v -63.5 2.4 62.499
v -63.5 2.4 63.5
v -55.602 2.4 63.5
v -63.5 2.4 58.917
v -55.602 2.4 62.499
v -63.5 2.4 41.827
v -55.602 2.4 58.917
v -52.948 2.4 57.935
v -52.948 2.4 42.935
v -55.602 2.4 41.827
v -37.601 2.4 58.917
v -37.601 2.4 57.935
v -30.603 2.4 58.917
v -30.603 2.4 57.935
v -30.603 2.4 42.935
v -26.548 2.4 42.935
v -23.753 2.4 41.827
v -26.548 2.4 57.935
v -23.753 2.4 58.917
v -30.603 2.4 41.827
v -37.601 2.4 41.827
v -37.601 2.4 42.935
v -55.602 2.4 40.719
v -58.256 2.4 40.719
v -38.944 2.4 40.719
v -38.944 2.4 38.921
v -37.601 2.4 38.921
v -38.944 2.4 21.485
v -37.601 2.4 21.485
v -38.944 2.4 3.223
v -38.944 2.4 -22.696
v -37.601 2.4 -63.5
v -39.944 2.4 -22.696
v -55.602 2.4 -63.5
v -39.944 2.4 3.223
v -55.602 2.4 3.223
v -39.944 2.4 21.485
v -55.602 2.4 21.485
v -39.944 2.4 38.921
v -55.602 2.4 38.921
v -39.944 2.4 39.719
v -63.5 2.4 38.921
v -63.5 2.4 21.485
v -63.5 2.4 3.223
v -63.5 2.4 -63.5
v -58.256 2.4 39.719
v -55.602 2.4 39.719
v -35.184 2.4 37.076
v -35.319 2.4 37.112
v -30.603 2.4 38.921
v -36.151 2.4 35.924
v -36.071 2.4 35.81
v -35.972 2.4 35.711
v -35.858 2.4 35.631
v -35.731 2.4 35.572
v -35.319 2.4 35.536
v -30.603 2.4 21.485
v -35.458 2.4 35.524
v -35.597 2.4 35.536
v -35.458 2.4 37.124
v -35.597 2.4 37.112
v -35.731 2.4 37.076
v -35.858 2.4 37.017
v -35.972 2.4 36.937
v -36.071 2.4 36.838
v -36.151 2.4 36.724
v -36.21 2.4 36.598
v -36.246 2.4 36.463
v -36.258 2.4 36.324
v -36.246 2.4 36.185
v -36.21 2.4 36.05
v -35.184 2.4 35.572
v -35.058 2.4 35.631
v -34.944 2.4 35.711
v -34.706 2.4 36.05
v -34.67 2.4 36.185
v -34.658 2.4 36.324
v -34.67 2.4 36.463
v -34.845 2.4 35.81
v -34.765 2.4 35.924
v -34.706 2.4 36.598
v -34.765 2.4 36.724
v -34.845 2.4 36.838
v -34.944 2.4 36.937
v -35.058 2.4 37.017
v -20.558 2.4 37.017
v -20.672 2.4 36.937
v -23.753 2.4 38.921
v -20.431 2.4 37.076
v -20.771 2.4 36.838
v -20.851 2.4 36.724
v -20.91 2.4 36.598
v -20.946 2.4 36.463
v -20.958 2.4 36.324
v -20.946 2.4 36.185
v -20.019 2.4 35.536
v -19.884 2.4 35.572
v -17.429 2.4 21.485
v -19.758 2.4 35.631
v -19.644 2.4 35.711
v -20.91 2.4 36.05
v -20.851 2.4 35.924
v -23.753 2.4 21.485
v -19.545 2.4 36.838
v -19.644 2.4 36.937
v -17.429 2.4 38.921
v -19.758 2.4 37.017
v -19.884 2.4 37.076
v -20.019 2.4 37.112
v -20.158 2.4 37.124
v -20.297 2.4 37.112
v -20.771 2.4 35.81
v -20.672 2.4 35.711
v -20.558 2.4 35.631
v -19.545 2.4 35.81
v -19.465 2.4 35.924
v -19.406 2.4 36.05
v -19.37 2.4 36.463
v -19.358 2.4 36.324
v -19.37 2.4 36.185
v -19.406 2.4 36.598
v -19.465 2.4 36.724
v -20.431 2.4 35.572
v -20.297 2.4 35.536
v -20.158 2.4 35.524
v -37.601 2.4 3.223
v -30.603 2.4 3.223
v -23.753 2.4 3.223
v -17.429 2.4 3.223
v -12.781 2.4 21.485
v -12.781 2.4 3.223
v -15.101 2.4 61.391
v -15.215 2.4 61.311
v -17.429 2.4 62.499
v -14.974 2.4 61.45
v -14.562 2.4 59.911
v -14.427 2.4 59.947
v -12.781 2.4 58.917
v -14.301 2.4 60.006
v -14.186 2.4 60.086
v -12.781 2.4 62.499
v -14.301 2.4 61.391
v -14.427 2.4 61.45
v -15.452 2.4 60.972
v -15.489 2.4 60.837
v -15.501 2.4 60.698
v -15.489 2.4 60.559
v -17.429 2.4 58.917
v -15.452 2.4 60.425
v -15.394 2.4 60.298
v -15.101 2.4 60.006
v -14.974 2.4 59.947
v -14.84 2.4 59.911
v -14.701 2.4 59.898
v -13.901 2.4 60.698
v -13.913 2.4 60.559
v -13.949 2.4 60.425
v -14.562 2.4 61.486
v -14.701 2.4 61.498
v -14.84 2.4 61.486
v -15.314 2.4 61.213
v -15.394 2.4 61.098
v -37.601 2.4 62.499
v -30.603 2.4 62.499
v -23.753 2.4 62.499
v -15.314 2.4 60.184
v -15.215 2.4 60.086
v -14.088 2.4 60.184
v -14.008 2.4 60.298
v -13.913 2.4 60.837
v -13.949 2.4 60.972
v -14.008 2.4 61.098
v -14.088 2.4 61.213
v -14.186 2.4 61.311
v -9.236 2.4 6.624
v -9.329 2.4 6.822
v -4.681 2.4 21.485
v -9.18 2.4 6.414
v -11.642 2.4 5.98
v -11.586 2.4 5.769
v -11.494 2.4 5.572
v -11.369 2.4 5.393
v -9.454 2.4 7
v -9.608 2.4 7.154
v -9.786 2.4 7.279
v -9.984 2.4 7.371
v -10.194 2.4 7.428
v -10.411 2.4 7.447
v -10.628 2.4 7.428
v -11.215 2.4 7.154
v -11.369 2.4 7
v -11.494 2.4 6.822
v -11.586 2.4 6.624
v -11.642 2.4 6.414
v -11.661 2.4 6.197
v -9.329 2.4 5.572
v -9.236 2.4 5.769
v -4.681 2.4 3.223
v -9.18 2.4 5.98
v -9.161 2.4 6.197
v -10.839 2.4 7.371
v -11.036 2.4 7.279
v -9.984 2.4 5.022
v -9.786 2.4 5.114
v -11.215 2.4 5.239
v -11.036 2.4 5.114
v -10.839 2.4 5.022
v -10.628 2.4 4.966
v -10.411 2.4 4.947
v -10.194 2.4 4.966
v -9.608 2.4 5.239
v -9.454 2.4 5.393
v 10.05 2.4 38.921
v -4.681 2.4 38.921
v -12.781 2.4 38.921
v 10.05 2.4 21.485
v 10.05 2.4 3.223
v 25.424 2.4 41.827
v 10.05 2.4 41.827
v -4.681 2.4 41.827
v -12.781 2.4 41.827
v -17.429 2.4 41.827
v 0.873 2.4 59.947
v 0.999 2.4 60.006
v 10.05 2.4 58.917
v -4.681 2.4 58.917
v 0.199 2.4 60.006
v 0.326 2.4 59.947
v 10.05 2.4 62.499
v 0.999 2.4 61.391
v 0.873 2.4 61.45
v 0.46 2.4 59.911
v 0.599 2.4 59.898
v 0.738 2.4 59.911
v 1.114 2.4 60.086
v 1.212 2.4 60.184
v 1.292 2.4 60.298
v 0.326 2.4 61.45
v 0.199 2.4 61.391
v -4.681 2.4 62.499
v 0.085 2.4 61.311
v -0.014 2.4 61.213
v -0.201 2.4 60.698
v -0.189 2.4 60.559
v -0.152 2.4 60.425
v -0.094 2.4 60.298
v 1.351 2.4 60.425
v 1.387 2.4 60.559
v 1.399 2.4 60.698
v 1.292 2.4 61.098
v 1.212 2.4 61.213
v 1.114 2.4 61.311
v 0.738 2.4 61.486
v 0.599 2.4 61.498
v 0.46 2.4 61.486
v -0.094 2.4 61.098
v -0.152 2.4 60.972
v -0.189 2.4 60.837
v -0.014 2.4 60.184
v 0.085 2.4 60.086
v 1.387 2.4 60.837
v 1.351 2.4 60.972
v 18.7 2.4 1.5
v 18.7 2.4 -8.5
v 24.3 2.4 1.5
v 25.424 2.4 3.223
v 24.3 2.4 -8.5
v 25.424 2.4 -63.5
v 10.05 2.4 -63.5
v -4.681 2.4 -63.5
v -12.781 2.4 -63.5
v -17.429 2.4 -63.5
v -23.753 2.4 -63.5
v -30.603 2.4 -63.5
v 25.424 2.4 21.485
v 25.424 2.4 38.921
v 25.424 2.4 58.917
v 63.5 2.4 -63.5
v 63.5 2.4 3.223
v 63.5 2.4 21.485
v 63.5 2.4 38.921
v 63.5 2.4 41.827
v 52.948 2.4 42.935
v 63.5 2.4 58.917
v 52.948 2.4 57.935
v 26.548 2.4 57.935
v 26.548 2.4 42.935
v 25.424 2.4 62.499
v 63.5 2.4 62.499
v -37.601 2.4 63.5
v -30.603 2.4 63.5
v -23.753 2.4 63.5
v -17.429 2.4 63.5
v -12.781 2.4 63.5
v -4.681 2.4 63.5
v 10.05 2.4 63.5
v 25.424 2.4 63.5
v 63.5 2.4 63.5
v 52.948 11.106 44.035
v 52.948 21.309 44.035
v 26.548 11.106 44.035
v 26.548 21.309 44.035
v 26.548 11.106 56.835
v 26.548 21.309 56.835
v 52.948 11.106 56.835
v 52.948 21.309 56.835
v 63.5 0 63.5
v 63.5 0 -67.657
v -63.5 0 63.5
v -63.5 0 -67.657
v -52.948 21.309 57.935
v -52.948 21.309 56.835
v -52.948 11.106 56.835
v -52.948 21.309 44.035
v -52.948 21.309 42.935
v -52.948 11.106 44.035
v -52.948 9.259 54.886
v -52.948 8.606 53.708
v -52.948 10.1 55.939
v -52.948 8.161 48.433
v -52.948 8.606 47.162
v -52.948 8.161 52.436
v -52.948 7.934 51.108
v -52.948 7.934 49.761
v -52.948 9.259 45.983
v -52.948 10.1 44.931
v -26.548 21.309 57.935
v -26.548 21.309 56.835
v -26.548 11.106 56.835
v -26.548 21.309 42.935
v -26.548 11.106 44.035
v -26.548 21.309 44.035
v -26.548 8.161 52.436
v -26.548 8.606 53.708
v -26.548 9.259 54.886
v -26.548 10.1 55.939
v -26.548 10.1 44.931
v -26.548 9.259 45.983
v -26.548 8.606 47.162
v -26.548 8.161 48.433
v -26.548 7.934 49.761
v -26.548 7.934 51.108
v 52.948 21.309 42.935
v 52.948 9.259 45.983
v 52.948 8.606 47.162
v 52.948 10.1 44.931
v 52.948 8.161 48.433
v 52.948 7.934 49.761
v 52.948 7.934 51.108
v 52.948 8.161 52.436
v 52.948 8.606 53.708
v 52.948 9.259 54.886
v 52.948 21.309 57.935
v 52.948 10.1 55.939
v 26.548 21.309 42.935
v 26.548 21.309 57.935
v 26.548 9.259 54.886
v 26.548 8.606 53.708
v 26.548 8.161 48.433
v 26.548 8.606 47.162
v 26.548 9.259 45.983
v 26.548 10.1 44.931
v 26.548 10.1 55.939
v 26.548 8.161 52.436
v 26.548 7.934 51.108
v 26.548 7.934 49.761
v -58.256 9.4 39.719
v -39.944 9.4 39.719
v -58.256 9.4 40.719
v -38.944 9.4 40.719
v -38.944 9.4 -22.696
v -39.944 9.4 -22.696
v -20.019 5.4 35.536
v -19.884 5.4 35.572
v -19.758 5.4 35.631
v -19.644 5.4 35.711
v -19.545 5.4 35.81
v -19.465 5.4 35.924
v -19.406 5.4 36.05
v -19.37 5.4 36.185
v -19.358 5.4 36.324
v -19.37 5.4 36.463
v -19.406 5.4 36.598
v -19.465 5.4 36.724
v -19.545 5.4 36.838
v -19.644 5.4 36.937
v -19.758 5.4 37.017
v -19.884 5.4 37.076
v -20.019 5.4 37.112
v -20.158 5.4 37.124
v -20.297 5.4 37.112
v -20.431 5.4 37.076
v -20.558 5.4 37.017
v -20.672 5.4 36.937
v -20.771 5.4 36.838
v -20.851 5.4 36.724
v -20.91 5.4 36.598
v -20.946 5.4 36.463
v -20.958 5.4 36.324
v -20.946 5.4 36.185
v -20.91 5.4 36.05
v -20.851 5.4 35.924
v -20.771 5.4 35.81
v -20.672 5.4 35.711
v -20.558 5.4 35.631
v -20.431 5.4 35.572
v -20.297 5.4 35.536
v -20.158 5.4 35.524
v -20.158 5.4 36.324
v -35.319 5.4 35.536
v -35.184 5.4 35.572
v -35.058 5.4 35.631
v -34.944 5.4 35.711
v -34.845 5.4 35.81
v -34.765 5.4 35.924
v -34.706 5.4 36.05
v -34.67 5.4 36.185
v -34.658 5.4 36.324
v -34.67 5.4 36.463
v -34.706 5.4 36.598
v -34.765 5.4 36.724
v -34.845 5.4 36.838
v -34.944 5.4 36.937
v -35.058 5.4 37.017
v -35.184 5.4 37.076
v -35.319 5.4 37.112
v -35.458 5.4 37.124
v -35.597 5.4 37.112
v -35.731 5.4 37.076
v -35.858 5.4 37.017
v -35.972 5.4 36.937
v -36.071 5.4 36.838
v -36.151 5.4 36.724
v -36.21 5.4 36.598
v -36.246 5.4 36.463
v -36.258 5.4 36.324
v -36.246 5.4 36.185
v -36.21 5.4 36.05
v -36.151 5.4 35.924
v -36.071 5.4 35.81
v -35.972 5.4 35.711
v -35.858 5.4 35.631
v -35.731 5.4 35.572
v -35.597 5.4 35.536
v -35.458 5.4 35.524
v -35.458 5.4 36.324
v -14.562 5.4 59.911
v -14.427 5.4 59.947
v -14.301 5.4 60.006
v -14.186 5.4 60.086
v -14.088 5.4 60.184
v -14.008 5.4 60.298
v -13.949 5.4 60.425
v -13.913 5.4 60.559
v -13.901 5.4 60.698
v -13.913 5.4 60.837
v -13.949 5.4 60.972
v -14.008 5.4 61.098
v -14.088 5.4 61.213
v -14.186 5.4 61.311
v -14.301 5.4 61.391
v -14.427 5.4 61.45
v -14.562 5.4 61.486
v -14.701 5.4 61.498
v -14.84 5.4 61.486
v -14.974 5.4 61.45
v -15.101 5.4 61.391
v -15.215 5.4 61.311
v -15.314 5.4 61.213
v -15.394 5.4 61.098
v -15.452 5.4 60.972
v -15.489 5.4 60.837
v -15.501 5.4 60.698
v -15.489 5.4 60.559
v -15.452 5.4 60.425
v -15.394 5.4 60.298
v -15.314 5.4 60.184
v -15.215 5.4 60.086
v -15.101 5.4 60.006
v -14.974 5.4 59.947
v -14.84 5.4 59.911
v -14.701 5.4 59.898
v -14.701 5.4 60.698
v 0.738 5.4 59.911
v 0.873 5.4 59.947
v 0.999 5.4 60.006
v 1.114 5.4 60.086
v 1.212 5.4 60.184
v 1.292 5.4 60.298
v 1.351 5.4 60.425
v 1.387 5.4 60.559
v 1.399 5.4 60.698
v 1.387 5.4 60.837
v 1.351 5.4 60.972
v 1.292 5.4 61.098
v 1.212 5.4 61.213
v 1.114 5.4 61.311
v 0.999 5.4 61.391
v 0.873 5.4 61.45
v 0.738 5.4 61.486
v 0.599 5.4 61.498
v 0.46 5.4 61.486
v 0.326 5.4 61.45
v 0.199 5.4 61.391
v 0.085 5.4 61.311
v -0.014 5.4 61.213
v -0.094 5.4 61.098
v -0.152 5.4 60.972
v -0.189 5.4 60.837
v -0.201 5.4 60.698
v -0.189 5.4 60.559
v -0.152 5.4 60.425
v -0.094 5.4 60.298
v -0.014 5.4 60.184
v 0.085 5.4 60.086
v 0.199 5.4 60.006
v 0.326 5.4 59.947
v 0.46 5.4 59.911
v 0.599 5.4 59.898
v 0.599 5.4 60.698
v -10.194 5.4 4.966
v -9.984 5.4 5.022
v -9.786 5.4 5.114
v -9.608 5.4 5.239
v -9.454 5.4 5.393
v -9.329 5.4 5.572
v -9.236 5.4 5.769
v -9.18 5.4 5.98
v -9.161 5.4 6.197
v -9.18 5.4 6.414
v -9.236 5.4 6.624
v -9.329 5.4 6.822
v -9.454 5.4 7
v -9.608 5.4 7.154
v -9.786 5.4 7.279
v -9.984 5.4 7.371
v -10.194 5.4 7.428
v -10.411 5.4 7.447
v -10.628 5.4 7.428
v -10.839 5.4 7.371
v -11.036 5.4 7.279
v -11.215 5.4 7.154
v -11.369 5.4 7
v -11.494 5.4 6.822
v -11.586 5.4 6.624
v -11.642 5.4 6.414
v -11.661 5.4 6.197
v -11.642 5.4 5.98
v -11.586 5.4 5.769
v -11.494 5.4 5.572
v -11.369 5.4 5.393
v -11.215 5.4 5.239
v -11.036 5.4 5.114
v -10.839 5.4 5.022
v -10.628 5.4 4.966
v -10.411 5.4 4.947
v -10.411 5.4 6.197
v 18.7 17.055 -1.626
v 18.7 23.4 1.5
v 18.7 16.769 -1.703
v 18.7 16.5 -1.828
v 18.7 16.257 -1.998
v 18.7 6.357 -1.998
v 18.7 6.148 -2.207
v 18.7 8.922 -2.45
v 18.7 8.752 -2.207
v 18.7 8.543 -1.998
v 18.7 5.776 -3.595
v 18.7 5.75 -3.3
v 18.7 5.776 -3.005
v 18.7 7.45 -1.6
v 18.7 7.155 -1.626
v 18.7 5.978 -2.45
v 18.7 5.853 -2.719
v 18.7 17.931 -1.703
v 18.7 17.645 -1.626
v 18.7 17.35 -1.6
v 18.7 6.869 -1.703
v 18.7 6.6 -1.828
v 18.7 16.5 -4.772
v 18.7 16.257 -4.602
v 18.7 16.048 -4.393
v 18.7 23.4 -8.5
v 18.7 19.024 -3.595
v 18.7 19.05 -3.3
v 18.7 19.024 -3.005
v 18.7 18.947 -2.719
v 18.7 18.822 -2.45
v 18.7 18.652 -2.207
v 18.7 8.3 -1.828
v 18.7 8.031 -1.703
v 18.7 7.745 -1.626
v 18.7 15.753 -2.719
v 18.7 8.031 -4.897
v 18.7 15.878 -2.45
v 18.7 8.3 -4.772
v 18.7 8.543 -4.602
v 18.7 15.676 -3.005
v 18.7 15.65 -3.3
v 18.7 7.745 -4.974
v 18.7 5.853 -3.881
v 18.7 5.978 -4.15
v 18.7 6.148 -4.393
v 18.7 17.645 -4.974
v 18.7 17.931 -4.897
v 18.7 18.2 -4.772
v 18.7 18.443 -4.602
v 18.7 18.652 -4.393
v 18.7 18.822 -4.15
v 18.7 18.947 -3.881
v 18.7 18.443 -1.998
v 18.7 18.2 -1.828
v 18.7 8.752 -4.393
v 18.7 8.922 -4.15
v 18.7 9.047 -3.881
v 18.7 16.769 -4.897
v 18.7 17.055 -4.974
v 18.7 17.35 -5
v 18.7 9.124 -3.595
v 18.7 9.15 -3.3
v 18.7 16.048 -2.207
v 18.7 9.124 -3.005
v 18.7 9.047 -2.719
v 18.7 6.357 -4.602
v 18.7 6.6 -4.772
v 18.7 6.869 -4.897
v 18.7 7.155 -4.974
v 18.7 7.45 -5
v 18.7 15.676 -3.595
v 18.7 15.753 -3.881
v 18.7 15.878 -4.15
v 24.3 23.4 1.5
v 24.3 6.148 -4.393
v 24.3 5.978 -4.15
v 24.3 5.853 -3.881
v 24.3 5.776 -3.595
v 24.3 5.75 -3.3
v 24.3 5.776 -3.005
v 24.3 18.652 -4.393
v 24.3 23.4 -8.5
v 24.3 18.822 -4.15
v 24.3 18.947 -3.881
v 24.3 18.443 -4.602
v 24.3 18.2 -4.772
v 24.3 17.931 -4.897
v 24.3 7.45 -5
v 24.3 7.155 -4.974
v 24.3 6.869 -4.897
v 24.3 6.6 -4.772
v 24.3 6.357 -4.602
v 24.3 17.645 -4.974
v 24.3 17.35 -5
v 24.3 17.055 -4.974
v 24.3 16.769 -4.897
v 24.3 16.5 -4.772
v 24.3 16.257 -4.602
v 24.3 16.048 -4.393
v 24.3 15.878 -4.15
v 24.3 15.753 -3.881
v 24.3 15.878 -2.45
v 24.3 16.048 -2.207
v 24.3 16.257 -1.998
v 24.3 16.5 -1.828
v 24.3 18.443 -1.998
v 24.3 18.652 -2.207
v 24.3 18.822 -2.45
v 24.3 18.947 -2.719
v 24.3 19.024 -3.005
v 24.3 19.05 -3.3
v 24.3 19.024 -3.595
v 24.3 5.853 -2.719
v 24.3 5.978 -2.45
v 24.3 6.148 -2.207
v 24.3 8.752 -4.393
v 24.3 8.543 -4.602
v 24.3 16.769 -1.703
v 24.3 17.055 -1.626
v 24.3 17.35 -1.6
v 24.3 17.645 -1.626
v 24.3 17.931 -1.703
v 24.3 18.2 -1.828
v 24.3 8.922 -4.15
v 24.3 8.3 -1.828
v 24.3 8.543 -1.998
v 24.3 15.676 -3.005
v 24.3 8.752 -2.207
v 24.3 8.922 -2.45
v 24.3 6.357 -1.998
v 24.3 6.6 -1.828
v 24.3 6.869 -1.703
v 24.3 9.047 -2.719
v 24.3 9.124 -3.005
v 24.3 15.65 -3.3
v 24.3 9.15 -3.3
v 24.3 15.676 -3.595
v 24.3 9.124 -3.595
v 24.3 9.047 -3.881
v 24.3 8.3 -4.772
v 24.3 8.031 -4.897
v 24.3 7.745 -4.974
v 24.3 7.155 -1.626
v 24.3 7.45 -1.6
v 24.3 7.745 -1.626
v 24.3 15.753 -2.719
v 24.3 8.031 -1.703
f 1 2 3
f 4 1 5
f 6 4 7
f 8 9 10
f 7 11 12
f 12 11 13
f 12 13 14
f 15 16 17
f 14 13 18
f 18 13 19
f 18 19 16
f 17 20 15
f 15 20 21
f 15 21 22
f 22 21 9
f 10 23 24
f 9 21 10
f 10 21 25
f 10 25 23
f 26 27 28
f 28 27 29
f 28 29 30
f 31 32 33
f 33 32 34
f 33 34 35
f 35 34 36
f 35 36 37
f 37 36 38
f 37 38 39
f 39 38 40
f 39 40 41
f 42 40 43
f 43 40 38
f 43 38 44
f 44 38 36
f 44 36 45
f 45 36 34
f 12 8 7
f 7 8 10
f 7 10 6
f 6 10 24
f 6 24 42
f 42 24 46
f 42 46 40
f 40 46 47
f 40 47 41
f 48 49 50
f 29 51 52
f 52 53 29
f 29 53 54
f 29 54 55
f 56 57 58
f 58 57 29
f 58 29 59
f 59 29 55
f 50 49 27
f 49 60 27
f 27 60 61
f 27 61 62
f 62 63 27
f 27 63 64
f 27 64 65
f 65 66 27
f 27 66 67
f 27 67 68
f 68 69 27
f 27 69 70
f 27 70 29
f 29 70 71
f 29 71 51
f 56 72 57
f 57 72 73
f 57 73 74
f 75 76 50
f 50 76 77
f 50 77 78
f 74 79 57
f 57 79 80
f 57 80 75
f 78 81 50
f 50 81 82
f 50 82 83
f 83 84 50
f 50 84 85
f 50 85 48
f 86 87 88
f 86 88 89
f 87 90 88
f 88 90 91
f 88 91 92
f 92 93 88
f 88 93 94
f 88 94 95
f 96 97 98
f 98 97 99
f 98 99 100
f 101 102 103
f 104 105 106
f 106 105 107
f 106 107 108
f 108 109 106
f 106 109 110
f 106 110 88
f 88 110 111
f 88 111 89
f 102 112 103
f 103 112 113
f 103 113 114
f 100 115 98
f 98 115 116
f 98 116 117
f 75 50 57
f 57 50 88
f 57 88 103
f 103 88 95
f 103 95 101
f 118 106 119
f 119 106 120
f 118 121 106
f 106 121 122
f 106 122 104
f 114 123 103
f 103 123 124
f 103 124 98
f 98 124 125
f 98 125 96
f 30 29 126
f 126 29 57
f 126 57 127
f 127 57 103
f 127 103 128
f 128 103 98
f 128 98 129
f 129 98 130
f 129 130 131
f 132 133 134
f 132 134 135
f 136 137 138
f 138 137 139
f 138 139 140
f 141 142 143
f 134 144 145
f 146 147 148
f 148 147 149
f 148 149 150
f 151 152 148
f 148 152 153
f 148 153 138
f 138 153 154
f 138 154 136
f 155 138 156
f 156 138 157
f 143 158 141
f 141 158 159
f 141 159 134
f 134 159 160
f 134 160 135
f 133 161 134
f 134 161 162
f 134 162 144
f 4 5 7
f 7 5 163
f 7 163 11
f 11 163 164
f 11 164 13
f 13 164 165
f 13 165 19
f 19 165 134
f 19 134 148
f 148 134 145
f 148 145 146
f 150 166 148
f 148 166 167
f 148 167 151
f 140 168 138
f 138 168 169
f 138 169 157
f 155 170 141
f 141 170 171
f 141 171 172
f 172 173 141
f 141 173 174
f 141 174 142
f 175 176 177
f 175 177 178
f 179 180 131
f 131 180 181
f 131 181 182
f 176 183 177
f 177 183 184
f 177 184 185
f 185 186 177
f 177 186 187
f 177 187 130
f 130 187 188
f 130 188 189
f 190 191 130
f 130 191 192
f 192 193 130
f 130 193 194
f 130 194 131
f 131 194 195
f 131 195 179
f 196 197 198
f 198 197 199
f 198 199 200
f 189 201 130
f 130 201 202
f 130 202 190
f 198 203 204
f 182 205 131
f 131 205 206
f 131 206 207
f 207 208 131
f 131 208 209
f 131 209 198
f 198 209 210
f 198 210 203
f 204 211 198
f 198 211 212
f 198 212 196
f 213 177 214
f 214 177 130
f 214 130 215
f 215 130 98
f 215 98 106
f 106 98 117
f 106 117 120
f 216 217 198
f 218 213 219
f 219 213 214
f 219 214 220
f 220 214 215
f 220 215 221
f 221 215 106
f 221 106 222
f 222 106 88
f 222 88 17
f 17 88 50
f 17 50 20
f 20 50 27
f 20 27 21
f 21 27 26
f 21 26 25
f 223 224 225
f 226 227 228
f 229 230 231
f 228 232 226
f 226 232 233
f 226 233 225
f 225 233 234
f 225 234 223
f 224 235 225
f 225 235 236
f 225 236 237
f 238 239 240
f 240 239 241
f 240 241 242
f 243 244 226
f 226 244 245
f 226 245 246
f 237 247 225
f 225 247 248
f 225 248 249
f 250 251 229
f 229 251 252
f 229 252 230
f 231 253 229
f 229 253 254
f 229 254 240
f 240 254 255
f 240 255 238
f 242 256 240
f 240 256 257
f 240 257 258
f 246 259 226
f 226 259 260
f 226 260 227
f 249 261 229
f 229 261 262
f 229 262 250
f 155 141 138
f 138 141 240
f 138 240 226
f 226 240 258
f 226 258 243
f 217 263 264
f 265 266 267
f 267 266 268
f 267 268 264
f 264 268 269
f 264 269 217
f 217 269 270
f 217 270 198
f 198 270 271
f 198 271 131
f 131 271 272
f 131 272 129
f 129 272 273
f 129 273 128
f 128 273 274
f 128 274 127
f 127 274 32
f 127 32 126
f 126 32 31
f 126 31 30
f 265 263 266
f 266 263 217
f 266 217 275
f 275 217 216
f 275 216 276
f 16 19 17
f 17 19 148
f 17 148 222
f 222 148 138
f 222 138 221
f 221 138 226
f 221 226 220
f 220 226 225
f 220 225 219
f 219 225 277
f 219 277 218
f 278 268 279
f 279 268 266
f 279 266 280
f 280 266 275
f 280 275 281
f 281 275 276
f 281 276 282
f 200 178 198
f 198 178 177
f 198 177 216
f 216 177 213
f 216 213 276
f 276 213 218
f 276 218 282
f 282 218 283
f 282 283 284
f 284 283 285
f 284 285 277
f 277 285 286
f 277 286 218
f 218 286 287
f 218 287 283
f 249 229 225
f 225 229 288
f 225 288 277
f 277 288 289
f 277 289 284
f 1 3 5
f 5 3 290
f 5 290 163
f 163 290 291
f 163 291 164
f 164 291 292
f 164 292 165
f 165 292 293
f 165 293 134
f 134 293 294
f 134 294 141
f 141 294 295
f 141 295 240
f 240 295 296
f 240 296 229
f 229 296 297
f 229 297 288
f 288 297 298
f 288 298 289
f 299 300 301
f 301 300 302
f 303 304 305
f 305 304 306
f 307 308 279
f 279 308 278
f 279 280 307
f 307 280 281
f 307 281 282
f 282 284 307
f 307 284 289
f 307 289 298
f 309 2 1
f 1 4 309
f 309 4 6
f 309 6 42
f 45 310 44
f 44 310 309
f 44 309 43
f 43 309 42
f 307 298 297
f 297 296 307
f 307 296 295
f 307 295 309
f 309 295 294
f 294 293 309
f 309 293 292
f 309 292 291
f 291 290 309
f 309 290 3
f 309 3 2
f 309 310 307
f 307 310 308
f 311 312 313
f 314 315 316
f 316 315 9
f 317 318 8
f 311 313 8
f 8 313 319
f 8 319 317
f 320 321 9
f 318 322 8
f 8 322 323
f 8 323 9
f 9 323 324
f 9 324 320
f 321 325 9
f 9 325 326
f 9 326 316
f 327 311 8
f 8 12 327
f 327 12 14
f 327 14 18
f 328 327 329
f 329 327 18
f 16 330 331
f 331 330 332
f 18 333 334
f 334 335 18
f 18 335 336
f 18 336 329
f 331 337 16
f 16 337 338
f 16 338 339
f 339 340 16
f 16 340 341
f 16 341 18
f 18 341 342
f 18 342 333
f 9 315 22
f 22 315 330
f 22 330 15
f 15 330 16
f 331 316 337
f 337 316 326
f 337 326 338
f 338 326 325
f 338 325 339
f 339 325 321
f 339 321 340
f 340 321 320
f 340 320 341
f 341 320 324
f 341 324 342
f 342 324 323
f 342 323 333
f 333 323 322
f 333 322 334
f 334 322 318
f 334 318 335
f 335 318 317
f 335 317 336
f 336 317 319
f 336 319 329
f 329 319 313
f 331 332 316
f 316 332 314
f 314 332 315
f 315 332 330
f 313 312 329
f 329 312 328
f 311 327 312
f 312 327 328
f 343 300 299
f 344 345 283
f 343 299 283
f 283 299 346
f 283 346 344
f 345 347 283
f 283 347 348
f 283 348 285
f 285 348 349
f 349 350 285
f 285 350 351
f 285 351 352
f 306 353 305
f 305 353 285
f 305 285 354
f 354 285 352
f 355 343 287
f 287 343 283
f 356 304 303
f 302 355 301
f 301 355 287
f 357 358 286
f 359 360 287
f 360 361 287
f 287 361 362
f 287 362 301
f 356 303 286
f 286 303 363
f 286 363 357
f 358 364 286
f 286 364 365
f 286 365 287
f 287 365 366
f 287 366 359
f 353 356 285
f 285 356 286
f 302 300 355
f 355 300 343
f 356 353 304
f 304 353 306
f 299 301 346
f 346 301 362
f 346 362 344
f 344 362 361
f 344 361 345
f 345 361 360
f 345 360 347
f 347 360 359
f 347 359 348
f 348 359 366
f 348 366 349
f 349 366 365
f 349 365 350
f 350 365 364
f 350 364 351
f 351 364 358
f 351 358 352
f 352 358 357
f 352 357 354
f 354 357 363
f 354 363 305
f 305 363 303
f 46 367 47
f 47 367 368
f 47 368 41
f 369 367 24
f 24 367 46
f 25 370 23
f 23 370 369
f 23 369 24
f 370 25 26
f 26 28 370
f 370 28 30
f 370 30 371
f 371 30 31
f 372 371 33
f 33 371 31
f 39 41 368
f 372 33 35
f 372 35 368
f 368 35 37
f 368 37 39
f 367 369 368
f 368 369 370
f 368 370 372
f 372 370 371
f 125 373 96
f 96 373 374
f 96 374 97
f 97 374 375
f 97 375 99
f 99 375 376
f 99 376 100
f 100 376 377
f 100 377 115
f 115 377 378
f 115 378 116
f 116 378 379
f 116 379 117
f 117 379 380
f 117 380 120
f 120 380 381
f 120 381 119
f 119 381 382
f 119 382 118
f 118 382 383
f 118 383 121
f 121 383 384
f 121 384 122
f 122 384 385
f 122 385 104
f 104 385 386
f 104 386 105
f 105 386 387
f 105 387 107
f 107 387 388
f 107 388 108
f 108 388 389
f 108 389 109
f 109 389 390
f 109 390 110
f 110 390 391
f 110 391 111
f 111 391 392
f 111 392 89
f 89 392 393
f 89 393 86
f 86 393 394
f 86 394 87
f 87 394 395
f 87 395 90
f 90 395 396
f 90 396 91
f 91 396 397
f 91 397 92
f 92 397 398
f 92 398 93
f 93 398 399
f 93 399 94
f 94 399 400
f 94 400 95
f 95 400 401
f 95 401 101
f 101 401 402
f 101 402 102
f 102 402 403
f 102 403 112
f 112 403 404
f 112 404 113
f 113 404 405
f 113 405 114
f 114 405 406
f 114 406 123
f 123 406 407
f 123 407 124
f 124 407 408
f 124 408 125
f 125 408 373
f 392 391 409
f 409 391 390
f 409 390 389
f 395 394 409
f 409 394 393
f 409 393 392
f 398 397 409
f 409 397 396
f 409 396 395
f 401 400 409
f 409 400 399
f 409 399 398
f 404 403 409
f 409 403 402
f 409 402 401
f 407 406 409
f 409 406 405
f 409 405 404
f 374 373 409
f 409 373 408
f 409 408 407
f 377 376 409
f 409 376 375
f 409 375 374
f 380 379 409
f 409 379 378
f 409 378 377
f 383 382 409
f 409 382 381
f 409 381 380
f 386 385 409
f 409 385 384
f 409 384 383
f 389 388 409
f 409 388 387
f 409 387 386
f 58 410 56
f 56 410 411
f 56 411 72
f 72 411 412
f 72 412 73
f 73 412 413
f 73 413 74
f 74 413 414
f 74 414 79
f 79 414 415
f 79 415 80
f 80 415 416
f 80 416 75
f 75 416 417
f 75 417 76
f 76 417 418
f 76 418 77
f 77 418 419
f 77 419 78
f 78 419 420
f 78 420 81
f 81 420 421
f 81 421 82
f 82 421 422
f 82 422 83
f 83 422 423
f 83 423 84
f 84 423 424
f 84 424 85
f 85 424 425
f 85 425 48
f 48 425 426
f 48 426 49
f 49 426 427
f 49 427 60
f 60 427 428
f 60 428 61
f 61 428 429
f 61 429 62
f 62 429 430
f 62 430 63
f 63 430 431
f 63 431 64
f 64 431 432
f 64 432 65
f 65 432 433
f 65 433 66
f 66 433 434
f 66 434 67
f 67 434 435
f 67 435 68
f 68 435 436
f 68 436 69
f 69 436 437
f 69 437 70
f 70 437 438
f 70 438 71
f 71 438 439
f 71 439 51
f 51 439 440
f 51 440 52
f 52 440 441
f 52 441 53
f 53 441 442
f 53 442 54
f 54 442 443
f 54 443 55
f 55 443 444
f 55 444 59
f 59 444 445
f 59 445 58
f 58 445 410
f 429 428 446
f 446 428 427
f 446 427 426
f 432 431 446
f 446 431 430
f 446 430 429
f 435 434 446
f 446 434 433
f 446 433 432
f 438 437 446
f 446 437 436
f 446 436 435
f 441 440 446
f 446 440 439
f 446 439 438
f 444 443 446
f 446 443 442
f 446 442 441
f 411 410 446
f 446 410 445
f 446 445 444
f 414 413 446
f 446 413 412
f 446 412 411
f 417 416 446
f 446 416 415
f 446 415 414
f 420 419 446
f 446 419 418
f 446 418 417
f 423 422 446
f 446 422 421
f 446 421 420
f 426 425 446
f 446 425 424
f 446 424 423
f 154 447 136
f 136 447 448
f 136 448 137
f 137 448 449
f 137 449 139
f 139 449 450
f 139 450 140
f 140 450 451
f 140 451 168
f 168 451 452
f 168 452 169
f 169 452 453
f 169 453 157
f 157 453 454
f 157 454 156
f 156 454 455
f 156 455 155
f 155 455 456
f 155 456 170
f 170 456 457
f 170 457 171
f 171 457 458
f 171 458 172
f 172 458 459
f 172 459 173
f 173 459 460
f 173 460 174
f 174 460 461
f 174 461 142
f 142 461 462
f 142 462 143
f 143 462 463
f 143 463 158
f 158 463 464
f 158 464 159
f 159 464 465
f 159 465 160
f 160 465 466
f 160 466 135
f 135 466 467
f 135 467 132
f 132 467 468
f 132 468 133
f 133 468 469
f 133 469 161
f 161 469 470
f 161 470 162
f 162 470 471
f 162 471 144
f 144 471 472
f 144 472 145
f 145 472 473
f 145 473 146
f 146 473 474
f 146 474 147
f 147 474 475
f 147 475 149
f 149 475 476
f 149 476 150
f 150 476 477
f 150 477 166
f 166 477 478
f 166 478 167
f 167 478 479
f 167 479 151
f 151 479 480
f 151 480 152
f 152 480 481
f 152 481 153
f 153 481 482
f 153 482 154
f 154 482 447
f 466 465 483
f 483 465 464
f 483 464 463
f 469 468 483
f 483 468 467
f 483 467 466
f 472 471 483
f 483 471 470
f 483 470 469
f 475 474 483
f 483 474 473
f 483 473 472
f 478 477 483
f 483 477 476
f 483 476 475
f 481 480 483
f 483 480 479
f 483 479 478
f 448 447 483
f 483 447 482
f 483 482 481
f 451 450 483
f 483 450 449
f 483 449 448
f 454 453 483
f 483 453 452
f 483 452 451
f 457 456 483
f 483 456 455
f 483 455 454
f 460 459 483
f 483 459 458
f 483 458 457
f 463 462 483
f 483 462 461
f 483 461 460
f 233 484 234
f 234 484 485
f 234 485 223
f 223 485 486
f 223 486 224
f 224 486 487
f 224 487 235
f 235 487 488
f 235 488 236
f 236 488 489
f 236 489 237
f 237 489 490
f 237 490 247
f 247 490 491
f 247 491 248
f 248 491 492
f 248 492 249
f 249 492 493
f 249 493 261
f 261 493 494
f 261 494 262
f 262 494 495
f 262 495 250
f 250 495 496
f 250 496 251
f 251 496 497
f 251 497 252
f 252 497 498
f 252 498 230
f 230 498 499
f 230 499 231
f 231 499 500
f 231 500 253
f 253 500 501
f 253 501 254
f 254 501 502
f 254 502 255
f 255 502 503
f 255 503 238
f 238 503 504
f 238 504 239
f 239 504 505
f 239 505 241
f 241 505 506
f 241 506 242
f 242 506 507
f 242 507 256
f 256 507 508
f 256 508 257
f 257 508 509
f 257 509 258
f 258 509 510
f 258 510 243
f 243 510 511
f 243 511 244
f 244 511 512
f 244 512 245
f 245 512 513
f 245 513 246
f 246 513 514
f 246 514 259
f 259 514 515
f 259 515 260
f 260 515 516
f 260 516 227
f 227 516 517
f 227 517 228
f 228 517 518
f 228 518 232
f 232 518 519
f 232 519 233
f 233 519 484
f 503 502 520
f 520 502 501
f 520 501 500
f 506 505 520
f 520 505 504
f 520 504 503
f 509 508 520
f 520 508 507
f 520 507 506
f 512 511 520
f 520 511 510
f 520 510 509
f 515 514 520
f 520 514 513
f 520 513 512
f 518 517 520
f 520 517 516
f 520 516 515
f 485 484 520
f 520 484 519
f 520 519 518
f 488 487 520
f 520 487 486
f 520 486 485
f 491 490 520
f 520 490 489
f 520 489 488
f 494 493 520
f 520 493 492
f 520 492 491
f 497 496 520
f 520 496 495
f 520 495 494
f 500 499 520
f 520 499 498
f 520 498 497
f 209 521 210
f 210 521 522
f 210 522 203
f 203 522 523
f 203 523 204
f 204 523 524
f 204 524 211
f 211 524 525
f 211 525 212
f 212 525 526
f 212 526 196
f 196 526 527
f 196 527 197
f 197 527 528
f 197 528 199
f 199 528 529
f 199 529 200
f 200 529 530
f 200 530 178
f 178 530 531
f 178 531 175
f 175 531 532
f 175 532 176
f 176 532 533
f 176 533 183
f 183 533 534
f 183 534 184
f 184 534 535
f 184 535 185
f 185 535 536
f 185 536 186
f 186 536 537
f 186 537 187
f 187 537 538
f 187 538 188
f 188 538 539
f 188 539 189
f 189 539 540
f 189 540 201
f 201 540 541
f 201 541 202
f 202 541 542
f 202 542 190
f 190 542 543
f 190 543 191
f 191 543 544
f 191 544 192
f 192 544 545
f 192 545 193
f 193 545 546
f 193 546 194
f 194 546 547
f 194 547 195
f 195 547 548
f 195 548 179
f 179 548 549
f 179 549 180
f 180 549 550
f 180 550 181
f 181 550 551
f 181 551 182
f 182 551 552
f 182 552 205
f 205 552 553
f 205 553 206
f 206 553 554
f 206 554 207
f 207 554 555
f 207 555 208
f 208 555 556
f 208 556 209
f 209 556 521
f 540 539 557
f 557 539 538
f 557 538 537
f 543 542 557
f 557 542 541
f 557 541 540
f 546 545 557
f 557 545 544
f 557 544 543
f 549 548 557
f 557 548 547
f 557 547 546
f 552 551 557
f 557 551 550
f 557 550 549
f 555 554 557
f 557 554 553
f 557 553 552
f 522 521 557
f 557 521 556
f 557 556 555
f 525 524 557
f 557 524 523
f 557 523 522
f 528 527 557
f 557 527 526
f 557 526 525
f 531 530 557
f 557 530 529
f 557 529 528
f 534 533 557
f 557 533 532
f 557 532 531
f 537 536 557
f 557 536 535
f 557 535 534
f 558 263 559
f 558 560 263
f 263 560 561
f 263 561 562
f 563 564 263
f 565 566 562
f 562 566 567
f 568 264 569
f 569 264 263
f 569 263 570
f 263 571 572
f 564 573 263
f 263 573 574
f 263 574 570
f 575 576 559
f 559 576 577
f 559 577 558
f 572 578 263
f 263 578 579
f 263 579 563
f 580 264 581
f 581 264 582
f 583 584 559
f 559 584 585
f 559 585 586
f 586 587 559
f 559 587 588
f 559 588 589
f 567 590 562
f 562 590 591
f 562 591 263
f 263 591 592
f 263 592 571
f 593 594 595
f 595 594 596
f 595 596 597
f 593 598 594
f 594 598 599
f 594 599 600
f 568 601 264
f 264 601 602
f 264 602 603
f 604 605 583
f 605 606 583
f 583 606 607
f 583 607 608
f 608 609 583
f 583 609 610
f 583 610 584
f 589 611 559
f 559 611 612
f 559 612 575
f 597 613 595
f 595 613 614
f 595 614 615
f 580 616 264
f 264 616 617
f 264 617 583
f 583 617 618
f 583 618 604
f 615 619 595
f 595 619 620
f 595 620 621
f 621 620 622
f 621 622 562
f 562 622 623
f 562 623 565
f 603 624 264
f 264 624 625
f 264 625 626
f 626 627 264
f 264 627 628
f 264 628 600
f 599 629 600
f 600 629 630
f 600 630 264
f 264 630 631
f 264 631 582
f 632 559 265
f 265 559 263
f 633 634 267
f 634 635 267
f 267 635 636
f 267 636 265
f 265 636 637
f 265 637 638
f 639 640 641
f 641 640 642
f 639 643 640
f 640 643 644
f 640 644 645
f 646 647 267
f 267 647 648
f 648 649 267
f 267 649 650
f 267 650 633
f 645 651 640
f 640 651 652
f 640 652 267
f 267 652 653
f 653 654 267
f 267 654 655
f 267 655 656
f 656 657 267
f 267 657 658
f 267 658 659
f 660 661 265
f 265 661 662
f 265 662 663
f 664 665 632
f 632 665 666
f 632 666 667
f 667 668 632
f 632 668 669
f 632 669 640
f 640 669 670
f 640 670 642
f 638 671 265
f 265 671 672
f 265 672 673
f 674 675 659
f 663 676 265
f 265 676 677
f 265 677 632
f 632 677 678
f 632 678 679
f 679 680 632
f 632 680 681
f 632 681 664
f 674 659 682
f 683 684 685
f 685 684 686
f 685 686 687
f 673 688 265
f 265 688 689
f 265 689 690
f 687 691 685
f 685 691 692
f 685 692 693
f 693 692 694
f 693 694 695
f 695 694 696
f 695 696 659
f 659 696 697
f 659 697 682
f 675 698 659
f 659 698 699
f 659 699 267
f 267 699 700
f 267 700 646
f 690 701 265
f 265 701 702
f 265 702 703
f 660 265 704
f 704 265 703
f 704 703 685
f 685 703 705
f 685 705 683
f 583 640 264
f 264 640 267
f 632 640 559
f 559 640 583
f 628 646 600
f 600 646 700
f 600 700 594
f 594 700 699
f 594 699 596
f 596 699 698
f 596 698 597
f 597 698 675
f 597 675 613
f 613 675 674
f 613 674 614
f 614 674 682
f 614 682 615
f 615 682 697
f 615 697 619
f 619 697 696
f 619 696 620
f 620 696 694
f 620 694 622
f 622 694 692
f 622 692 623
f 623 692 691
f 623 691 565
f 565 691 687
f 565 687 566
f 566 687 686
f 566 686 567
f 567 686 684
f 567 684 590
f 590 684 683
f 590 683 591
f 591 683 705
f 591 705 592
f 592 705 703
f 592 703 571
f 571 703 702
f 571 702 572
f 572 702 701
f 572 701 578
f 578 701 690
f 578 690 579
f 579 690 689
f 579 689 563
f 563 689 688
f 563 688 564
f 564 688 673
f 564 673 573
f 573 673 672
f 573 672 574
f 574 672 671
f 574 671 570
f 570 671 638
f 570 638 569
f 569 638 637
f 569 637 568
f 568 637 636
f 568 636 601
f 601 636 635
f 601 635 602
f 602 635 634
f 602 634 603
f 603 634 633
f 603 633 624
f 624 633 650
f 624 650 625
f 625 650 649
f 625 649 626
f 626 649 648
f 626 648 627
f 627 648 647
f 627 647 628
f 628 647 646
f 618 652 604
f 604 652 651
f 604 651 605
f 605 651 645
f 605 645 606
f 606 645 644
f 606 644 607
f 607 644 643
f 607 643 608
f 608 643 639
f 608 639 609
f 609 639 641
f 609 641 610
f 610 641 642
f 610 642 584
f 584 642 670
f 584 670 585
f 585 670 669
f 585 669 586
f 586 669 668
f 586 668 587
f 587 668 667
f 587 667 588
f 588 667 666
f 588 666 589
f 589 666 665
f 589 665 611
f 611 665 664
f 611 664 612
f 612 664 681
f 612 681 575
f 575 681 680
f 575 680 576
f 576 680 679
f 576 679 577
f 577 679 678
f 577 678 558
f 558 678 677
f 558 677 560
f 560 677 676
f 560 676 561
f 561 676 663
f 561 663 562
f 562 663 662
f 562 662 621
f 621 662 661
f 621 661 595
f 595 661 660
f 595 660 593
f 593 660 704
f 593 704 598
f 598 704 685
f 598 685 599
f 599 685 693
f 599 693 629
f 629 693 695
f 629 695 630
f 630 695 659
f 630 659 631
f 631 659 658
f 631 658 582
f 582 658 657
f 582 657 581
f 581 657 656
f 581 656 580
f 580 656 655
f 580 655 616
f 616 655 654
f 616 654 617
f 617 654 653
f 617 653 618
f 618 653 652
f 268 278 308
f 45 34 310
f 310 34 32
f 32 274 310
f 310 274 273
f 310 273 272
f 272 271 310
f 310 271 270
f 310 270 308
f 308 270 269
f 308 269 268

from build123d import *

# Parameters (mm, degrees)
SKETCH1_W                = 127
SKETCH1_H                = 127
BOSS_EXTRUDE1_DEPTH      = 2.4
SKETCH2_W                = 26.4
SKETCH2_H                = 15
BOSS_EXTRUDE3_DEPTH      = 5.5
BOSS_EXTRUDE4_REACH      = 92.149
BOSS_EXTRUDE4_END_RADIUS = 8
SKETCH3_W                = 26.4
SKETCH3_H                = 12.8
SKETCH4_W                = 26.4
SKETCH4_H                = 1.1
BOSS_EXTRUDE5_DEPTH      = 13.40885
BOSS_EXTRUDE8_DEPTH      = 7
SKETCH7_R                = 0.8
BOSS_EXTRUDE9_DEPTH      = 3
SKETCH8_R                = 1.25
BOSS_EXTRUDE10_DEPTH     = 3
SKETCH9_W                = 5.6
SKETCH9_H                = 10
BOSS_EXTRUDE11_DEPTH     = 21
SKETCH10_R               = 1.7
CUT_EXTRUDE1_DEPTH       = 5.6
BOSS_EXTRUDE12_DEPTH     = 127


with BuildPart() as part:
    # Sketch1 → Boss-Extrude1 (new body)
    with BuildSketch(Plane(origin=(0, 0, 0), x_dir=(1, 0, 0), z_dir=(0, 1, 0))):
        Rectangle(SKETCH1_W, SKETCH1_H)
    extrude(amount=BOSS_EXTRUDE1_DEPTH)

    # Sketch2 → Boss-Extrude3 (add)
    with BuildSketch(Plane(origin=(0, 2.4, 0), x_dir=(1, 0, 0), z_dir=(0, 1, 0))):
        with Locations((-39.747989038, -50.434775134)):
            Rectangle(SKETCH2_W, SKETCH2_H)
    boss_extrude3 = extrude(amount=BOSS_EXTRUDE3_DEPTH)

    # Boss-Extrude4: up to this cylinder (the profile starts outside it)
    boss_extrude4_end = Plane(origin=(-39.747989, 15.906072529, 50.434775134), z_dir=(-1, 0, 0)) * Cylinder(BOSS_EXTRUDE4_END_RADIUS, 201.298, mode=Mode.PRIVATE)
    # Sketch3 → Boss-Extrude4 (add, up to the surface)
    with BuildSketch(Plane(origin=(0, 7.9, 0), x_dir=(1, 0, 0), z_dir=(0, 1, 0)), mode=Mode.PRIVATE) as boss_extrude4_sk1:
        with Locations((-39.747989038, -50.434775134)):
            Rectangle(SKETCH3_W, SKETCH3_H)
    boss_extrude4_tool1 = extrude(boss_extrude4_sk1.sketch, amount=BOSS_EXTRUDE4_REACH, mode=Mode.PRIVATE) - boss_extrude4_end
    boss_extrude4 = boss_extrude4_tool1.solids().sort_by_distance((-39.747989, 7.9, 50.434775))[0]
    add(boss_extrude4)

    # Sketch4 → Boss-Extrude5 (add)
    with BuildSketch(Plane(origin=(0, 7.9, 0), x_dir=(1, 0, 0), z_dir=(0, 1, 0))):
        with Locations((-39.747989038, -43.484775134)):
            Rectangle(SKETCH4_W, SKETCH4_H)
        with Locations((-39.747989038, -57.384775134)):
            Rectangle(SKETCH4_W, SKETCH4_H)
    boss_extrude5 = extrude(amount=BOSS_EXTRUDE5_DEPTH)

    # Mirror1: Boss-Extrude3 across plane
    add(boss_extrude3.mirror(Plane(origin=(0, 0, 0), x_dir=(0, 0, 1), z_dir=(1, 0, 0))))

    # Mirror2: Boss-Extrude5 across plane
    add(boss_extrude5.mirror(Plane(origin=(0, 0, 0), x_dir=(0, 0, 1), z_dir=(1, 0, 0))))

    # Mirror3: Boss-Extrude4 across plane
    add(boss_extrude4.mirror(Plane(origin=(0, 0, 0), x_dir=(0, 0, 1), z_dir=(1, 0, 0))))

    # Sketch6 → Boss-Extrude8 (add)
    with BuildSketch(Plane(origin=(0, 2.4, 0), x_dir=(1, 0, 0), z_dir=(0, 1, 0))):
        Polygon((-58.25637406, -39.71881472), (-58.25637406, -40.71881472), (-38.943651891, -40.71881472), (-38.943651891, 22.696046836), (-39.943651891, 22.696046836), (-39.943651891, -39.71881472), align=None)
    extrude(amount=BOSS_EXTRUDE8_DEPTH)

    # Sketch7 → Boss-Extrude9 (add)
    with BuildSketch(Plane(origin=(0, 2.4, 0), x_dir=(1, 0, 0), z_dir=(0, 1, 0))):
        with Locations(Location((-20.157758856, -36.323995409, 0), (0, 0, 90))):
            Circle(SKETCH7_R)
        with Locations(Location((-35.457758856, -36.323995409, 0), (0, 0, 90))):
            Circle(SKETCH7_R)
        with Locations(Location((-14.70070569, -60.698401589, 0), (0, 0, 90))):
            Circle(SKETCH7_R)
        with Locations(Location((0.59929431, -60.698401589, 0), (0, 0, 90))):
            Circle(SKETCH7_R)
    extrude(amount=BOSS_EXTRUDE9_DEPTH)

    # Sketch8 → Boss-Extrude10 (add)
    with BuildSketch(Plane(origin=(0, 2.4, 0), x_dir=(1, 0, 0), z_dir=(0, 1, 0))):
        with Locations(Location((-10.411058541, -6.196769083, 0), (0, 0, 90))):
            Circle(SKETCH8_R)
    extrude(amount=BOSS_EXTRUDE10_DEPTH)

    # Sketch9 → Boss-Extrude11 (add)
    with BuildSketch(Plane(origin=(0, 2.4, 0), x_dir=(1, 0, 0), z_dir=(0, 1, 0))):
        with Locations((21.5, 3.5)):
            Rectangle(SKETCH9_W, SKETCH9_H)
    extrude(amount=BOSS_EXTRUDE11_DEPTH)

    # Sketch10 → Cut-Extrude1 (cut)
    with BuildSketch(Plane(origin=(24.3, 0, 0), x_dir=(0, 0, -1), z_dir=(1, 0, 0))):
        with Locations((3.3, 17.35)):
            Circle(SKETCH10_R)
        with Locations((3.3, 7.45)):
            Circle(SKETCH10_R)
    extrude(amount=-CUT_EXTRUDE1_DEPTH, mode=Mode.SUBTRACT)

    # Sketch11 → Boss-Extrude12 (add)
    with BuildSketch(Plane(origin=(63.5, 0, 0), x_dir=(0, 0, -1), z_dir=(1, 0, 0))):
        Polygon((63.5, 2.4), (67.656921938, 0), (63.5, 0), align=None)
    extrude(amount=-BOSS_EXTRUDE12_DEPTH)


solid = part.part
